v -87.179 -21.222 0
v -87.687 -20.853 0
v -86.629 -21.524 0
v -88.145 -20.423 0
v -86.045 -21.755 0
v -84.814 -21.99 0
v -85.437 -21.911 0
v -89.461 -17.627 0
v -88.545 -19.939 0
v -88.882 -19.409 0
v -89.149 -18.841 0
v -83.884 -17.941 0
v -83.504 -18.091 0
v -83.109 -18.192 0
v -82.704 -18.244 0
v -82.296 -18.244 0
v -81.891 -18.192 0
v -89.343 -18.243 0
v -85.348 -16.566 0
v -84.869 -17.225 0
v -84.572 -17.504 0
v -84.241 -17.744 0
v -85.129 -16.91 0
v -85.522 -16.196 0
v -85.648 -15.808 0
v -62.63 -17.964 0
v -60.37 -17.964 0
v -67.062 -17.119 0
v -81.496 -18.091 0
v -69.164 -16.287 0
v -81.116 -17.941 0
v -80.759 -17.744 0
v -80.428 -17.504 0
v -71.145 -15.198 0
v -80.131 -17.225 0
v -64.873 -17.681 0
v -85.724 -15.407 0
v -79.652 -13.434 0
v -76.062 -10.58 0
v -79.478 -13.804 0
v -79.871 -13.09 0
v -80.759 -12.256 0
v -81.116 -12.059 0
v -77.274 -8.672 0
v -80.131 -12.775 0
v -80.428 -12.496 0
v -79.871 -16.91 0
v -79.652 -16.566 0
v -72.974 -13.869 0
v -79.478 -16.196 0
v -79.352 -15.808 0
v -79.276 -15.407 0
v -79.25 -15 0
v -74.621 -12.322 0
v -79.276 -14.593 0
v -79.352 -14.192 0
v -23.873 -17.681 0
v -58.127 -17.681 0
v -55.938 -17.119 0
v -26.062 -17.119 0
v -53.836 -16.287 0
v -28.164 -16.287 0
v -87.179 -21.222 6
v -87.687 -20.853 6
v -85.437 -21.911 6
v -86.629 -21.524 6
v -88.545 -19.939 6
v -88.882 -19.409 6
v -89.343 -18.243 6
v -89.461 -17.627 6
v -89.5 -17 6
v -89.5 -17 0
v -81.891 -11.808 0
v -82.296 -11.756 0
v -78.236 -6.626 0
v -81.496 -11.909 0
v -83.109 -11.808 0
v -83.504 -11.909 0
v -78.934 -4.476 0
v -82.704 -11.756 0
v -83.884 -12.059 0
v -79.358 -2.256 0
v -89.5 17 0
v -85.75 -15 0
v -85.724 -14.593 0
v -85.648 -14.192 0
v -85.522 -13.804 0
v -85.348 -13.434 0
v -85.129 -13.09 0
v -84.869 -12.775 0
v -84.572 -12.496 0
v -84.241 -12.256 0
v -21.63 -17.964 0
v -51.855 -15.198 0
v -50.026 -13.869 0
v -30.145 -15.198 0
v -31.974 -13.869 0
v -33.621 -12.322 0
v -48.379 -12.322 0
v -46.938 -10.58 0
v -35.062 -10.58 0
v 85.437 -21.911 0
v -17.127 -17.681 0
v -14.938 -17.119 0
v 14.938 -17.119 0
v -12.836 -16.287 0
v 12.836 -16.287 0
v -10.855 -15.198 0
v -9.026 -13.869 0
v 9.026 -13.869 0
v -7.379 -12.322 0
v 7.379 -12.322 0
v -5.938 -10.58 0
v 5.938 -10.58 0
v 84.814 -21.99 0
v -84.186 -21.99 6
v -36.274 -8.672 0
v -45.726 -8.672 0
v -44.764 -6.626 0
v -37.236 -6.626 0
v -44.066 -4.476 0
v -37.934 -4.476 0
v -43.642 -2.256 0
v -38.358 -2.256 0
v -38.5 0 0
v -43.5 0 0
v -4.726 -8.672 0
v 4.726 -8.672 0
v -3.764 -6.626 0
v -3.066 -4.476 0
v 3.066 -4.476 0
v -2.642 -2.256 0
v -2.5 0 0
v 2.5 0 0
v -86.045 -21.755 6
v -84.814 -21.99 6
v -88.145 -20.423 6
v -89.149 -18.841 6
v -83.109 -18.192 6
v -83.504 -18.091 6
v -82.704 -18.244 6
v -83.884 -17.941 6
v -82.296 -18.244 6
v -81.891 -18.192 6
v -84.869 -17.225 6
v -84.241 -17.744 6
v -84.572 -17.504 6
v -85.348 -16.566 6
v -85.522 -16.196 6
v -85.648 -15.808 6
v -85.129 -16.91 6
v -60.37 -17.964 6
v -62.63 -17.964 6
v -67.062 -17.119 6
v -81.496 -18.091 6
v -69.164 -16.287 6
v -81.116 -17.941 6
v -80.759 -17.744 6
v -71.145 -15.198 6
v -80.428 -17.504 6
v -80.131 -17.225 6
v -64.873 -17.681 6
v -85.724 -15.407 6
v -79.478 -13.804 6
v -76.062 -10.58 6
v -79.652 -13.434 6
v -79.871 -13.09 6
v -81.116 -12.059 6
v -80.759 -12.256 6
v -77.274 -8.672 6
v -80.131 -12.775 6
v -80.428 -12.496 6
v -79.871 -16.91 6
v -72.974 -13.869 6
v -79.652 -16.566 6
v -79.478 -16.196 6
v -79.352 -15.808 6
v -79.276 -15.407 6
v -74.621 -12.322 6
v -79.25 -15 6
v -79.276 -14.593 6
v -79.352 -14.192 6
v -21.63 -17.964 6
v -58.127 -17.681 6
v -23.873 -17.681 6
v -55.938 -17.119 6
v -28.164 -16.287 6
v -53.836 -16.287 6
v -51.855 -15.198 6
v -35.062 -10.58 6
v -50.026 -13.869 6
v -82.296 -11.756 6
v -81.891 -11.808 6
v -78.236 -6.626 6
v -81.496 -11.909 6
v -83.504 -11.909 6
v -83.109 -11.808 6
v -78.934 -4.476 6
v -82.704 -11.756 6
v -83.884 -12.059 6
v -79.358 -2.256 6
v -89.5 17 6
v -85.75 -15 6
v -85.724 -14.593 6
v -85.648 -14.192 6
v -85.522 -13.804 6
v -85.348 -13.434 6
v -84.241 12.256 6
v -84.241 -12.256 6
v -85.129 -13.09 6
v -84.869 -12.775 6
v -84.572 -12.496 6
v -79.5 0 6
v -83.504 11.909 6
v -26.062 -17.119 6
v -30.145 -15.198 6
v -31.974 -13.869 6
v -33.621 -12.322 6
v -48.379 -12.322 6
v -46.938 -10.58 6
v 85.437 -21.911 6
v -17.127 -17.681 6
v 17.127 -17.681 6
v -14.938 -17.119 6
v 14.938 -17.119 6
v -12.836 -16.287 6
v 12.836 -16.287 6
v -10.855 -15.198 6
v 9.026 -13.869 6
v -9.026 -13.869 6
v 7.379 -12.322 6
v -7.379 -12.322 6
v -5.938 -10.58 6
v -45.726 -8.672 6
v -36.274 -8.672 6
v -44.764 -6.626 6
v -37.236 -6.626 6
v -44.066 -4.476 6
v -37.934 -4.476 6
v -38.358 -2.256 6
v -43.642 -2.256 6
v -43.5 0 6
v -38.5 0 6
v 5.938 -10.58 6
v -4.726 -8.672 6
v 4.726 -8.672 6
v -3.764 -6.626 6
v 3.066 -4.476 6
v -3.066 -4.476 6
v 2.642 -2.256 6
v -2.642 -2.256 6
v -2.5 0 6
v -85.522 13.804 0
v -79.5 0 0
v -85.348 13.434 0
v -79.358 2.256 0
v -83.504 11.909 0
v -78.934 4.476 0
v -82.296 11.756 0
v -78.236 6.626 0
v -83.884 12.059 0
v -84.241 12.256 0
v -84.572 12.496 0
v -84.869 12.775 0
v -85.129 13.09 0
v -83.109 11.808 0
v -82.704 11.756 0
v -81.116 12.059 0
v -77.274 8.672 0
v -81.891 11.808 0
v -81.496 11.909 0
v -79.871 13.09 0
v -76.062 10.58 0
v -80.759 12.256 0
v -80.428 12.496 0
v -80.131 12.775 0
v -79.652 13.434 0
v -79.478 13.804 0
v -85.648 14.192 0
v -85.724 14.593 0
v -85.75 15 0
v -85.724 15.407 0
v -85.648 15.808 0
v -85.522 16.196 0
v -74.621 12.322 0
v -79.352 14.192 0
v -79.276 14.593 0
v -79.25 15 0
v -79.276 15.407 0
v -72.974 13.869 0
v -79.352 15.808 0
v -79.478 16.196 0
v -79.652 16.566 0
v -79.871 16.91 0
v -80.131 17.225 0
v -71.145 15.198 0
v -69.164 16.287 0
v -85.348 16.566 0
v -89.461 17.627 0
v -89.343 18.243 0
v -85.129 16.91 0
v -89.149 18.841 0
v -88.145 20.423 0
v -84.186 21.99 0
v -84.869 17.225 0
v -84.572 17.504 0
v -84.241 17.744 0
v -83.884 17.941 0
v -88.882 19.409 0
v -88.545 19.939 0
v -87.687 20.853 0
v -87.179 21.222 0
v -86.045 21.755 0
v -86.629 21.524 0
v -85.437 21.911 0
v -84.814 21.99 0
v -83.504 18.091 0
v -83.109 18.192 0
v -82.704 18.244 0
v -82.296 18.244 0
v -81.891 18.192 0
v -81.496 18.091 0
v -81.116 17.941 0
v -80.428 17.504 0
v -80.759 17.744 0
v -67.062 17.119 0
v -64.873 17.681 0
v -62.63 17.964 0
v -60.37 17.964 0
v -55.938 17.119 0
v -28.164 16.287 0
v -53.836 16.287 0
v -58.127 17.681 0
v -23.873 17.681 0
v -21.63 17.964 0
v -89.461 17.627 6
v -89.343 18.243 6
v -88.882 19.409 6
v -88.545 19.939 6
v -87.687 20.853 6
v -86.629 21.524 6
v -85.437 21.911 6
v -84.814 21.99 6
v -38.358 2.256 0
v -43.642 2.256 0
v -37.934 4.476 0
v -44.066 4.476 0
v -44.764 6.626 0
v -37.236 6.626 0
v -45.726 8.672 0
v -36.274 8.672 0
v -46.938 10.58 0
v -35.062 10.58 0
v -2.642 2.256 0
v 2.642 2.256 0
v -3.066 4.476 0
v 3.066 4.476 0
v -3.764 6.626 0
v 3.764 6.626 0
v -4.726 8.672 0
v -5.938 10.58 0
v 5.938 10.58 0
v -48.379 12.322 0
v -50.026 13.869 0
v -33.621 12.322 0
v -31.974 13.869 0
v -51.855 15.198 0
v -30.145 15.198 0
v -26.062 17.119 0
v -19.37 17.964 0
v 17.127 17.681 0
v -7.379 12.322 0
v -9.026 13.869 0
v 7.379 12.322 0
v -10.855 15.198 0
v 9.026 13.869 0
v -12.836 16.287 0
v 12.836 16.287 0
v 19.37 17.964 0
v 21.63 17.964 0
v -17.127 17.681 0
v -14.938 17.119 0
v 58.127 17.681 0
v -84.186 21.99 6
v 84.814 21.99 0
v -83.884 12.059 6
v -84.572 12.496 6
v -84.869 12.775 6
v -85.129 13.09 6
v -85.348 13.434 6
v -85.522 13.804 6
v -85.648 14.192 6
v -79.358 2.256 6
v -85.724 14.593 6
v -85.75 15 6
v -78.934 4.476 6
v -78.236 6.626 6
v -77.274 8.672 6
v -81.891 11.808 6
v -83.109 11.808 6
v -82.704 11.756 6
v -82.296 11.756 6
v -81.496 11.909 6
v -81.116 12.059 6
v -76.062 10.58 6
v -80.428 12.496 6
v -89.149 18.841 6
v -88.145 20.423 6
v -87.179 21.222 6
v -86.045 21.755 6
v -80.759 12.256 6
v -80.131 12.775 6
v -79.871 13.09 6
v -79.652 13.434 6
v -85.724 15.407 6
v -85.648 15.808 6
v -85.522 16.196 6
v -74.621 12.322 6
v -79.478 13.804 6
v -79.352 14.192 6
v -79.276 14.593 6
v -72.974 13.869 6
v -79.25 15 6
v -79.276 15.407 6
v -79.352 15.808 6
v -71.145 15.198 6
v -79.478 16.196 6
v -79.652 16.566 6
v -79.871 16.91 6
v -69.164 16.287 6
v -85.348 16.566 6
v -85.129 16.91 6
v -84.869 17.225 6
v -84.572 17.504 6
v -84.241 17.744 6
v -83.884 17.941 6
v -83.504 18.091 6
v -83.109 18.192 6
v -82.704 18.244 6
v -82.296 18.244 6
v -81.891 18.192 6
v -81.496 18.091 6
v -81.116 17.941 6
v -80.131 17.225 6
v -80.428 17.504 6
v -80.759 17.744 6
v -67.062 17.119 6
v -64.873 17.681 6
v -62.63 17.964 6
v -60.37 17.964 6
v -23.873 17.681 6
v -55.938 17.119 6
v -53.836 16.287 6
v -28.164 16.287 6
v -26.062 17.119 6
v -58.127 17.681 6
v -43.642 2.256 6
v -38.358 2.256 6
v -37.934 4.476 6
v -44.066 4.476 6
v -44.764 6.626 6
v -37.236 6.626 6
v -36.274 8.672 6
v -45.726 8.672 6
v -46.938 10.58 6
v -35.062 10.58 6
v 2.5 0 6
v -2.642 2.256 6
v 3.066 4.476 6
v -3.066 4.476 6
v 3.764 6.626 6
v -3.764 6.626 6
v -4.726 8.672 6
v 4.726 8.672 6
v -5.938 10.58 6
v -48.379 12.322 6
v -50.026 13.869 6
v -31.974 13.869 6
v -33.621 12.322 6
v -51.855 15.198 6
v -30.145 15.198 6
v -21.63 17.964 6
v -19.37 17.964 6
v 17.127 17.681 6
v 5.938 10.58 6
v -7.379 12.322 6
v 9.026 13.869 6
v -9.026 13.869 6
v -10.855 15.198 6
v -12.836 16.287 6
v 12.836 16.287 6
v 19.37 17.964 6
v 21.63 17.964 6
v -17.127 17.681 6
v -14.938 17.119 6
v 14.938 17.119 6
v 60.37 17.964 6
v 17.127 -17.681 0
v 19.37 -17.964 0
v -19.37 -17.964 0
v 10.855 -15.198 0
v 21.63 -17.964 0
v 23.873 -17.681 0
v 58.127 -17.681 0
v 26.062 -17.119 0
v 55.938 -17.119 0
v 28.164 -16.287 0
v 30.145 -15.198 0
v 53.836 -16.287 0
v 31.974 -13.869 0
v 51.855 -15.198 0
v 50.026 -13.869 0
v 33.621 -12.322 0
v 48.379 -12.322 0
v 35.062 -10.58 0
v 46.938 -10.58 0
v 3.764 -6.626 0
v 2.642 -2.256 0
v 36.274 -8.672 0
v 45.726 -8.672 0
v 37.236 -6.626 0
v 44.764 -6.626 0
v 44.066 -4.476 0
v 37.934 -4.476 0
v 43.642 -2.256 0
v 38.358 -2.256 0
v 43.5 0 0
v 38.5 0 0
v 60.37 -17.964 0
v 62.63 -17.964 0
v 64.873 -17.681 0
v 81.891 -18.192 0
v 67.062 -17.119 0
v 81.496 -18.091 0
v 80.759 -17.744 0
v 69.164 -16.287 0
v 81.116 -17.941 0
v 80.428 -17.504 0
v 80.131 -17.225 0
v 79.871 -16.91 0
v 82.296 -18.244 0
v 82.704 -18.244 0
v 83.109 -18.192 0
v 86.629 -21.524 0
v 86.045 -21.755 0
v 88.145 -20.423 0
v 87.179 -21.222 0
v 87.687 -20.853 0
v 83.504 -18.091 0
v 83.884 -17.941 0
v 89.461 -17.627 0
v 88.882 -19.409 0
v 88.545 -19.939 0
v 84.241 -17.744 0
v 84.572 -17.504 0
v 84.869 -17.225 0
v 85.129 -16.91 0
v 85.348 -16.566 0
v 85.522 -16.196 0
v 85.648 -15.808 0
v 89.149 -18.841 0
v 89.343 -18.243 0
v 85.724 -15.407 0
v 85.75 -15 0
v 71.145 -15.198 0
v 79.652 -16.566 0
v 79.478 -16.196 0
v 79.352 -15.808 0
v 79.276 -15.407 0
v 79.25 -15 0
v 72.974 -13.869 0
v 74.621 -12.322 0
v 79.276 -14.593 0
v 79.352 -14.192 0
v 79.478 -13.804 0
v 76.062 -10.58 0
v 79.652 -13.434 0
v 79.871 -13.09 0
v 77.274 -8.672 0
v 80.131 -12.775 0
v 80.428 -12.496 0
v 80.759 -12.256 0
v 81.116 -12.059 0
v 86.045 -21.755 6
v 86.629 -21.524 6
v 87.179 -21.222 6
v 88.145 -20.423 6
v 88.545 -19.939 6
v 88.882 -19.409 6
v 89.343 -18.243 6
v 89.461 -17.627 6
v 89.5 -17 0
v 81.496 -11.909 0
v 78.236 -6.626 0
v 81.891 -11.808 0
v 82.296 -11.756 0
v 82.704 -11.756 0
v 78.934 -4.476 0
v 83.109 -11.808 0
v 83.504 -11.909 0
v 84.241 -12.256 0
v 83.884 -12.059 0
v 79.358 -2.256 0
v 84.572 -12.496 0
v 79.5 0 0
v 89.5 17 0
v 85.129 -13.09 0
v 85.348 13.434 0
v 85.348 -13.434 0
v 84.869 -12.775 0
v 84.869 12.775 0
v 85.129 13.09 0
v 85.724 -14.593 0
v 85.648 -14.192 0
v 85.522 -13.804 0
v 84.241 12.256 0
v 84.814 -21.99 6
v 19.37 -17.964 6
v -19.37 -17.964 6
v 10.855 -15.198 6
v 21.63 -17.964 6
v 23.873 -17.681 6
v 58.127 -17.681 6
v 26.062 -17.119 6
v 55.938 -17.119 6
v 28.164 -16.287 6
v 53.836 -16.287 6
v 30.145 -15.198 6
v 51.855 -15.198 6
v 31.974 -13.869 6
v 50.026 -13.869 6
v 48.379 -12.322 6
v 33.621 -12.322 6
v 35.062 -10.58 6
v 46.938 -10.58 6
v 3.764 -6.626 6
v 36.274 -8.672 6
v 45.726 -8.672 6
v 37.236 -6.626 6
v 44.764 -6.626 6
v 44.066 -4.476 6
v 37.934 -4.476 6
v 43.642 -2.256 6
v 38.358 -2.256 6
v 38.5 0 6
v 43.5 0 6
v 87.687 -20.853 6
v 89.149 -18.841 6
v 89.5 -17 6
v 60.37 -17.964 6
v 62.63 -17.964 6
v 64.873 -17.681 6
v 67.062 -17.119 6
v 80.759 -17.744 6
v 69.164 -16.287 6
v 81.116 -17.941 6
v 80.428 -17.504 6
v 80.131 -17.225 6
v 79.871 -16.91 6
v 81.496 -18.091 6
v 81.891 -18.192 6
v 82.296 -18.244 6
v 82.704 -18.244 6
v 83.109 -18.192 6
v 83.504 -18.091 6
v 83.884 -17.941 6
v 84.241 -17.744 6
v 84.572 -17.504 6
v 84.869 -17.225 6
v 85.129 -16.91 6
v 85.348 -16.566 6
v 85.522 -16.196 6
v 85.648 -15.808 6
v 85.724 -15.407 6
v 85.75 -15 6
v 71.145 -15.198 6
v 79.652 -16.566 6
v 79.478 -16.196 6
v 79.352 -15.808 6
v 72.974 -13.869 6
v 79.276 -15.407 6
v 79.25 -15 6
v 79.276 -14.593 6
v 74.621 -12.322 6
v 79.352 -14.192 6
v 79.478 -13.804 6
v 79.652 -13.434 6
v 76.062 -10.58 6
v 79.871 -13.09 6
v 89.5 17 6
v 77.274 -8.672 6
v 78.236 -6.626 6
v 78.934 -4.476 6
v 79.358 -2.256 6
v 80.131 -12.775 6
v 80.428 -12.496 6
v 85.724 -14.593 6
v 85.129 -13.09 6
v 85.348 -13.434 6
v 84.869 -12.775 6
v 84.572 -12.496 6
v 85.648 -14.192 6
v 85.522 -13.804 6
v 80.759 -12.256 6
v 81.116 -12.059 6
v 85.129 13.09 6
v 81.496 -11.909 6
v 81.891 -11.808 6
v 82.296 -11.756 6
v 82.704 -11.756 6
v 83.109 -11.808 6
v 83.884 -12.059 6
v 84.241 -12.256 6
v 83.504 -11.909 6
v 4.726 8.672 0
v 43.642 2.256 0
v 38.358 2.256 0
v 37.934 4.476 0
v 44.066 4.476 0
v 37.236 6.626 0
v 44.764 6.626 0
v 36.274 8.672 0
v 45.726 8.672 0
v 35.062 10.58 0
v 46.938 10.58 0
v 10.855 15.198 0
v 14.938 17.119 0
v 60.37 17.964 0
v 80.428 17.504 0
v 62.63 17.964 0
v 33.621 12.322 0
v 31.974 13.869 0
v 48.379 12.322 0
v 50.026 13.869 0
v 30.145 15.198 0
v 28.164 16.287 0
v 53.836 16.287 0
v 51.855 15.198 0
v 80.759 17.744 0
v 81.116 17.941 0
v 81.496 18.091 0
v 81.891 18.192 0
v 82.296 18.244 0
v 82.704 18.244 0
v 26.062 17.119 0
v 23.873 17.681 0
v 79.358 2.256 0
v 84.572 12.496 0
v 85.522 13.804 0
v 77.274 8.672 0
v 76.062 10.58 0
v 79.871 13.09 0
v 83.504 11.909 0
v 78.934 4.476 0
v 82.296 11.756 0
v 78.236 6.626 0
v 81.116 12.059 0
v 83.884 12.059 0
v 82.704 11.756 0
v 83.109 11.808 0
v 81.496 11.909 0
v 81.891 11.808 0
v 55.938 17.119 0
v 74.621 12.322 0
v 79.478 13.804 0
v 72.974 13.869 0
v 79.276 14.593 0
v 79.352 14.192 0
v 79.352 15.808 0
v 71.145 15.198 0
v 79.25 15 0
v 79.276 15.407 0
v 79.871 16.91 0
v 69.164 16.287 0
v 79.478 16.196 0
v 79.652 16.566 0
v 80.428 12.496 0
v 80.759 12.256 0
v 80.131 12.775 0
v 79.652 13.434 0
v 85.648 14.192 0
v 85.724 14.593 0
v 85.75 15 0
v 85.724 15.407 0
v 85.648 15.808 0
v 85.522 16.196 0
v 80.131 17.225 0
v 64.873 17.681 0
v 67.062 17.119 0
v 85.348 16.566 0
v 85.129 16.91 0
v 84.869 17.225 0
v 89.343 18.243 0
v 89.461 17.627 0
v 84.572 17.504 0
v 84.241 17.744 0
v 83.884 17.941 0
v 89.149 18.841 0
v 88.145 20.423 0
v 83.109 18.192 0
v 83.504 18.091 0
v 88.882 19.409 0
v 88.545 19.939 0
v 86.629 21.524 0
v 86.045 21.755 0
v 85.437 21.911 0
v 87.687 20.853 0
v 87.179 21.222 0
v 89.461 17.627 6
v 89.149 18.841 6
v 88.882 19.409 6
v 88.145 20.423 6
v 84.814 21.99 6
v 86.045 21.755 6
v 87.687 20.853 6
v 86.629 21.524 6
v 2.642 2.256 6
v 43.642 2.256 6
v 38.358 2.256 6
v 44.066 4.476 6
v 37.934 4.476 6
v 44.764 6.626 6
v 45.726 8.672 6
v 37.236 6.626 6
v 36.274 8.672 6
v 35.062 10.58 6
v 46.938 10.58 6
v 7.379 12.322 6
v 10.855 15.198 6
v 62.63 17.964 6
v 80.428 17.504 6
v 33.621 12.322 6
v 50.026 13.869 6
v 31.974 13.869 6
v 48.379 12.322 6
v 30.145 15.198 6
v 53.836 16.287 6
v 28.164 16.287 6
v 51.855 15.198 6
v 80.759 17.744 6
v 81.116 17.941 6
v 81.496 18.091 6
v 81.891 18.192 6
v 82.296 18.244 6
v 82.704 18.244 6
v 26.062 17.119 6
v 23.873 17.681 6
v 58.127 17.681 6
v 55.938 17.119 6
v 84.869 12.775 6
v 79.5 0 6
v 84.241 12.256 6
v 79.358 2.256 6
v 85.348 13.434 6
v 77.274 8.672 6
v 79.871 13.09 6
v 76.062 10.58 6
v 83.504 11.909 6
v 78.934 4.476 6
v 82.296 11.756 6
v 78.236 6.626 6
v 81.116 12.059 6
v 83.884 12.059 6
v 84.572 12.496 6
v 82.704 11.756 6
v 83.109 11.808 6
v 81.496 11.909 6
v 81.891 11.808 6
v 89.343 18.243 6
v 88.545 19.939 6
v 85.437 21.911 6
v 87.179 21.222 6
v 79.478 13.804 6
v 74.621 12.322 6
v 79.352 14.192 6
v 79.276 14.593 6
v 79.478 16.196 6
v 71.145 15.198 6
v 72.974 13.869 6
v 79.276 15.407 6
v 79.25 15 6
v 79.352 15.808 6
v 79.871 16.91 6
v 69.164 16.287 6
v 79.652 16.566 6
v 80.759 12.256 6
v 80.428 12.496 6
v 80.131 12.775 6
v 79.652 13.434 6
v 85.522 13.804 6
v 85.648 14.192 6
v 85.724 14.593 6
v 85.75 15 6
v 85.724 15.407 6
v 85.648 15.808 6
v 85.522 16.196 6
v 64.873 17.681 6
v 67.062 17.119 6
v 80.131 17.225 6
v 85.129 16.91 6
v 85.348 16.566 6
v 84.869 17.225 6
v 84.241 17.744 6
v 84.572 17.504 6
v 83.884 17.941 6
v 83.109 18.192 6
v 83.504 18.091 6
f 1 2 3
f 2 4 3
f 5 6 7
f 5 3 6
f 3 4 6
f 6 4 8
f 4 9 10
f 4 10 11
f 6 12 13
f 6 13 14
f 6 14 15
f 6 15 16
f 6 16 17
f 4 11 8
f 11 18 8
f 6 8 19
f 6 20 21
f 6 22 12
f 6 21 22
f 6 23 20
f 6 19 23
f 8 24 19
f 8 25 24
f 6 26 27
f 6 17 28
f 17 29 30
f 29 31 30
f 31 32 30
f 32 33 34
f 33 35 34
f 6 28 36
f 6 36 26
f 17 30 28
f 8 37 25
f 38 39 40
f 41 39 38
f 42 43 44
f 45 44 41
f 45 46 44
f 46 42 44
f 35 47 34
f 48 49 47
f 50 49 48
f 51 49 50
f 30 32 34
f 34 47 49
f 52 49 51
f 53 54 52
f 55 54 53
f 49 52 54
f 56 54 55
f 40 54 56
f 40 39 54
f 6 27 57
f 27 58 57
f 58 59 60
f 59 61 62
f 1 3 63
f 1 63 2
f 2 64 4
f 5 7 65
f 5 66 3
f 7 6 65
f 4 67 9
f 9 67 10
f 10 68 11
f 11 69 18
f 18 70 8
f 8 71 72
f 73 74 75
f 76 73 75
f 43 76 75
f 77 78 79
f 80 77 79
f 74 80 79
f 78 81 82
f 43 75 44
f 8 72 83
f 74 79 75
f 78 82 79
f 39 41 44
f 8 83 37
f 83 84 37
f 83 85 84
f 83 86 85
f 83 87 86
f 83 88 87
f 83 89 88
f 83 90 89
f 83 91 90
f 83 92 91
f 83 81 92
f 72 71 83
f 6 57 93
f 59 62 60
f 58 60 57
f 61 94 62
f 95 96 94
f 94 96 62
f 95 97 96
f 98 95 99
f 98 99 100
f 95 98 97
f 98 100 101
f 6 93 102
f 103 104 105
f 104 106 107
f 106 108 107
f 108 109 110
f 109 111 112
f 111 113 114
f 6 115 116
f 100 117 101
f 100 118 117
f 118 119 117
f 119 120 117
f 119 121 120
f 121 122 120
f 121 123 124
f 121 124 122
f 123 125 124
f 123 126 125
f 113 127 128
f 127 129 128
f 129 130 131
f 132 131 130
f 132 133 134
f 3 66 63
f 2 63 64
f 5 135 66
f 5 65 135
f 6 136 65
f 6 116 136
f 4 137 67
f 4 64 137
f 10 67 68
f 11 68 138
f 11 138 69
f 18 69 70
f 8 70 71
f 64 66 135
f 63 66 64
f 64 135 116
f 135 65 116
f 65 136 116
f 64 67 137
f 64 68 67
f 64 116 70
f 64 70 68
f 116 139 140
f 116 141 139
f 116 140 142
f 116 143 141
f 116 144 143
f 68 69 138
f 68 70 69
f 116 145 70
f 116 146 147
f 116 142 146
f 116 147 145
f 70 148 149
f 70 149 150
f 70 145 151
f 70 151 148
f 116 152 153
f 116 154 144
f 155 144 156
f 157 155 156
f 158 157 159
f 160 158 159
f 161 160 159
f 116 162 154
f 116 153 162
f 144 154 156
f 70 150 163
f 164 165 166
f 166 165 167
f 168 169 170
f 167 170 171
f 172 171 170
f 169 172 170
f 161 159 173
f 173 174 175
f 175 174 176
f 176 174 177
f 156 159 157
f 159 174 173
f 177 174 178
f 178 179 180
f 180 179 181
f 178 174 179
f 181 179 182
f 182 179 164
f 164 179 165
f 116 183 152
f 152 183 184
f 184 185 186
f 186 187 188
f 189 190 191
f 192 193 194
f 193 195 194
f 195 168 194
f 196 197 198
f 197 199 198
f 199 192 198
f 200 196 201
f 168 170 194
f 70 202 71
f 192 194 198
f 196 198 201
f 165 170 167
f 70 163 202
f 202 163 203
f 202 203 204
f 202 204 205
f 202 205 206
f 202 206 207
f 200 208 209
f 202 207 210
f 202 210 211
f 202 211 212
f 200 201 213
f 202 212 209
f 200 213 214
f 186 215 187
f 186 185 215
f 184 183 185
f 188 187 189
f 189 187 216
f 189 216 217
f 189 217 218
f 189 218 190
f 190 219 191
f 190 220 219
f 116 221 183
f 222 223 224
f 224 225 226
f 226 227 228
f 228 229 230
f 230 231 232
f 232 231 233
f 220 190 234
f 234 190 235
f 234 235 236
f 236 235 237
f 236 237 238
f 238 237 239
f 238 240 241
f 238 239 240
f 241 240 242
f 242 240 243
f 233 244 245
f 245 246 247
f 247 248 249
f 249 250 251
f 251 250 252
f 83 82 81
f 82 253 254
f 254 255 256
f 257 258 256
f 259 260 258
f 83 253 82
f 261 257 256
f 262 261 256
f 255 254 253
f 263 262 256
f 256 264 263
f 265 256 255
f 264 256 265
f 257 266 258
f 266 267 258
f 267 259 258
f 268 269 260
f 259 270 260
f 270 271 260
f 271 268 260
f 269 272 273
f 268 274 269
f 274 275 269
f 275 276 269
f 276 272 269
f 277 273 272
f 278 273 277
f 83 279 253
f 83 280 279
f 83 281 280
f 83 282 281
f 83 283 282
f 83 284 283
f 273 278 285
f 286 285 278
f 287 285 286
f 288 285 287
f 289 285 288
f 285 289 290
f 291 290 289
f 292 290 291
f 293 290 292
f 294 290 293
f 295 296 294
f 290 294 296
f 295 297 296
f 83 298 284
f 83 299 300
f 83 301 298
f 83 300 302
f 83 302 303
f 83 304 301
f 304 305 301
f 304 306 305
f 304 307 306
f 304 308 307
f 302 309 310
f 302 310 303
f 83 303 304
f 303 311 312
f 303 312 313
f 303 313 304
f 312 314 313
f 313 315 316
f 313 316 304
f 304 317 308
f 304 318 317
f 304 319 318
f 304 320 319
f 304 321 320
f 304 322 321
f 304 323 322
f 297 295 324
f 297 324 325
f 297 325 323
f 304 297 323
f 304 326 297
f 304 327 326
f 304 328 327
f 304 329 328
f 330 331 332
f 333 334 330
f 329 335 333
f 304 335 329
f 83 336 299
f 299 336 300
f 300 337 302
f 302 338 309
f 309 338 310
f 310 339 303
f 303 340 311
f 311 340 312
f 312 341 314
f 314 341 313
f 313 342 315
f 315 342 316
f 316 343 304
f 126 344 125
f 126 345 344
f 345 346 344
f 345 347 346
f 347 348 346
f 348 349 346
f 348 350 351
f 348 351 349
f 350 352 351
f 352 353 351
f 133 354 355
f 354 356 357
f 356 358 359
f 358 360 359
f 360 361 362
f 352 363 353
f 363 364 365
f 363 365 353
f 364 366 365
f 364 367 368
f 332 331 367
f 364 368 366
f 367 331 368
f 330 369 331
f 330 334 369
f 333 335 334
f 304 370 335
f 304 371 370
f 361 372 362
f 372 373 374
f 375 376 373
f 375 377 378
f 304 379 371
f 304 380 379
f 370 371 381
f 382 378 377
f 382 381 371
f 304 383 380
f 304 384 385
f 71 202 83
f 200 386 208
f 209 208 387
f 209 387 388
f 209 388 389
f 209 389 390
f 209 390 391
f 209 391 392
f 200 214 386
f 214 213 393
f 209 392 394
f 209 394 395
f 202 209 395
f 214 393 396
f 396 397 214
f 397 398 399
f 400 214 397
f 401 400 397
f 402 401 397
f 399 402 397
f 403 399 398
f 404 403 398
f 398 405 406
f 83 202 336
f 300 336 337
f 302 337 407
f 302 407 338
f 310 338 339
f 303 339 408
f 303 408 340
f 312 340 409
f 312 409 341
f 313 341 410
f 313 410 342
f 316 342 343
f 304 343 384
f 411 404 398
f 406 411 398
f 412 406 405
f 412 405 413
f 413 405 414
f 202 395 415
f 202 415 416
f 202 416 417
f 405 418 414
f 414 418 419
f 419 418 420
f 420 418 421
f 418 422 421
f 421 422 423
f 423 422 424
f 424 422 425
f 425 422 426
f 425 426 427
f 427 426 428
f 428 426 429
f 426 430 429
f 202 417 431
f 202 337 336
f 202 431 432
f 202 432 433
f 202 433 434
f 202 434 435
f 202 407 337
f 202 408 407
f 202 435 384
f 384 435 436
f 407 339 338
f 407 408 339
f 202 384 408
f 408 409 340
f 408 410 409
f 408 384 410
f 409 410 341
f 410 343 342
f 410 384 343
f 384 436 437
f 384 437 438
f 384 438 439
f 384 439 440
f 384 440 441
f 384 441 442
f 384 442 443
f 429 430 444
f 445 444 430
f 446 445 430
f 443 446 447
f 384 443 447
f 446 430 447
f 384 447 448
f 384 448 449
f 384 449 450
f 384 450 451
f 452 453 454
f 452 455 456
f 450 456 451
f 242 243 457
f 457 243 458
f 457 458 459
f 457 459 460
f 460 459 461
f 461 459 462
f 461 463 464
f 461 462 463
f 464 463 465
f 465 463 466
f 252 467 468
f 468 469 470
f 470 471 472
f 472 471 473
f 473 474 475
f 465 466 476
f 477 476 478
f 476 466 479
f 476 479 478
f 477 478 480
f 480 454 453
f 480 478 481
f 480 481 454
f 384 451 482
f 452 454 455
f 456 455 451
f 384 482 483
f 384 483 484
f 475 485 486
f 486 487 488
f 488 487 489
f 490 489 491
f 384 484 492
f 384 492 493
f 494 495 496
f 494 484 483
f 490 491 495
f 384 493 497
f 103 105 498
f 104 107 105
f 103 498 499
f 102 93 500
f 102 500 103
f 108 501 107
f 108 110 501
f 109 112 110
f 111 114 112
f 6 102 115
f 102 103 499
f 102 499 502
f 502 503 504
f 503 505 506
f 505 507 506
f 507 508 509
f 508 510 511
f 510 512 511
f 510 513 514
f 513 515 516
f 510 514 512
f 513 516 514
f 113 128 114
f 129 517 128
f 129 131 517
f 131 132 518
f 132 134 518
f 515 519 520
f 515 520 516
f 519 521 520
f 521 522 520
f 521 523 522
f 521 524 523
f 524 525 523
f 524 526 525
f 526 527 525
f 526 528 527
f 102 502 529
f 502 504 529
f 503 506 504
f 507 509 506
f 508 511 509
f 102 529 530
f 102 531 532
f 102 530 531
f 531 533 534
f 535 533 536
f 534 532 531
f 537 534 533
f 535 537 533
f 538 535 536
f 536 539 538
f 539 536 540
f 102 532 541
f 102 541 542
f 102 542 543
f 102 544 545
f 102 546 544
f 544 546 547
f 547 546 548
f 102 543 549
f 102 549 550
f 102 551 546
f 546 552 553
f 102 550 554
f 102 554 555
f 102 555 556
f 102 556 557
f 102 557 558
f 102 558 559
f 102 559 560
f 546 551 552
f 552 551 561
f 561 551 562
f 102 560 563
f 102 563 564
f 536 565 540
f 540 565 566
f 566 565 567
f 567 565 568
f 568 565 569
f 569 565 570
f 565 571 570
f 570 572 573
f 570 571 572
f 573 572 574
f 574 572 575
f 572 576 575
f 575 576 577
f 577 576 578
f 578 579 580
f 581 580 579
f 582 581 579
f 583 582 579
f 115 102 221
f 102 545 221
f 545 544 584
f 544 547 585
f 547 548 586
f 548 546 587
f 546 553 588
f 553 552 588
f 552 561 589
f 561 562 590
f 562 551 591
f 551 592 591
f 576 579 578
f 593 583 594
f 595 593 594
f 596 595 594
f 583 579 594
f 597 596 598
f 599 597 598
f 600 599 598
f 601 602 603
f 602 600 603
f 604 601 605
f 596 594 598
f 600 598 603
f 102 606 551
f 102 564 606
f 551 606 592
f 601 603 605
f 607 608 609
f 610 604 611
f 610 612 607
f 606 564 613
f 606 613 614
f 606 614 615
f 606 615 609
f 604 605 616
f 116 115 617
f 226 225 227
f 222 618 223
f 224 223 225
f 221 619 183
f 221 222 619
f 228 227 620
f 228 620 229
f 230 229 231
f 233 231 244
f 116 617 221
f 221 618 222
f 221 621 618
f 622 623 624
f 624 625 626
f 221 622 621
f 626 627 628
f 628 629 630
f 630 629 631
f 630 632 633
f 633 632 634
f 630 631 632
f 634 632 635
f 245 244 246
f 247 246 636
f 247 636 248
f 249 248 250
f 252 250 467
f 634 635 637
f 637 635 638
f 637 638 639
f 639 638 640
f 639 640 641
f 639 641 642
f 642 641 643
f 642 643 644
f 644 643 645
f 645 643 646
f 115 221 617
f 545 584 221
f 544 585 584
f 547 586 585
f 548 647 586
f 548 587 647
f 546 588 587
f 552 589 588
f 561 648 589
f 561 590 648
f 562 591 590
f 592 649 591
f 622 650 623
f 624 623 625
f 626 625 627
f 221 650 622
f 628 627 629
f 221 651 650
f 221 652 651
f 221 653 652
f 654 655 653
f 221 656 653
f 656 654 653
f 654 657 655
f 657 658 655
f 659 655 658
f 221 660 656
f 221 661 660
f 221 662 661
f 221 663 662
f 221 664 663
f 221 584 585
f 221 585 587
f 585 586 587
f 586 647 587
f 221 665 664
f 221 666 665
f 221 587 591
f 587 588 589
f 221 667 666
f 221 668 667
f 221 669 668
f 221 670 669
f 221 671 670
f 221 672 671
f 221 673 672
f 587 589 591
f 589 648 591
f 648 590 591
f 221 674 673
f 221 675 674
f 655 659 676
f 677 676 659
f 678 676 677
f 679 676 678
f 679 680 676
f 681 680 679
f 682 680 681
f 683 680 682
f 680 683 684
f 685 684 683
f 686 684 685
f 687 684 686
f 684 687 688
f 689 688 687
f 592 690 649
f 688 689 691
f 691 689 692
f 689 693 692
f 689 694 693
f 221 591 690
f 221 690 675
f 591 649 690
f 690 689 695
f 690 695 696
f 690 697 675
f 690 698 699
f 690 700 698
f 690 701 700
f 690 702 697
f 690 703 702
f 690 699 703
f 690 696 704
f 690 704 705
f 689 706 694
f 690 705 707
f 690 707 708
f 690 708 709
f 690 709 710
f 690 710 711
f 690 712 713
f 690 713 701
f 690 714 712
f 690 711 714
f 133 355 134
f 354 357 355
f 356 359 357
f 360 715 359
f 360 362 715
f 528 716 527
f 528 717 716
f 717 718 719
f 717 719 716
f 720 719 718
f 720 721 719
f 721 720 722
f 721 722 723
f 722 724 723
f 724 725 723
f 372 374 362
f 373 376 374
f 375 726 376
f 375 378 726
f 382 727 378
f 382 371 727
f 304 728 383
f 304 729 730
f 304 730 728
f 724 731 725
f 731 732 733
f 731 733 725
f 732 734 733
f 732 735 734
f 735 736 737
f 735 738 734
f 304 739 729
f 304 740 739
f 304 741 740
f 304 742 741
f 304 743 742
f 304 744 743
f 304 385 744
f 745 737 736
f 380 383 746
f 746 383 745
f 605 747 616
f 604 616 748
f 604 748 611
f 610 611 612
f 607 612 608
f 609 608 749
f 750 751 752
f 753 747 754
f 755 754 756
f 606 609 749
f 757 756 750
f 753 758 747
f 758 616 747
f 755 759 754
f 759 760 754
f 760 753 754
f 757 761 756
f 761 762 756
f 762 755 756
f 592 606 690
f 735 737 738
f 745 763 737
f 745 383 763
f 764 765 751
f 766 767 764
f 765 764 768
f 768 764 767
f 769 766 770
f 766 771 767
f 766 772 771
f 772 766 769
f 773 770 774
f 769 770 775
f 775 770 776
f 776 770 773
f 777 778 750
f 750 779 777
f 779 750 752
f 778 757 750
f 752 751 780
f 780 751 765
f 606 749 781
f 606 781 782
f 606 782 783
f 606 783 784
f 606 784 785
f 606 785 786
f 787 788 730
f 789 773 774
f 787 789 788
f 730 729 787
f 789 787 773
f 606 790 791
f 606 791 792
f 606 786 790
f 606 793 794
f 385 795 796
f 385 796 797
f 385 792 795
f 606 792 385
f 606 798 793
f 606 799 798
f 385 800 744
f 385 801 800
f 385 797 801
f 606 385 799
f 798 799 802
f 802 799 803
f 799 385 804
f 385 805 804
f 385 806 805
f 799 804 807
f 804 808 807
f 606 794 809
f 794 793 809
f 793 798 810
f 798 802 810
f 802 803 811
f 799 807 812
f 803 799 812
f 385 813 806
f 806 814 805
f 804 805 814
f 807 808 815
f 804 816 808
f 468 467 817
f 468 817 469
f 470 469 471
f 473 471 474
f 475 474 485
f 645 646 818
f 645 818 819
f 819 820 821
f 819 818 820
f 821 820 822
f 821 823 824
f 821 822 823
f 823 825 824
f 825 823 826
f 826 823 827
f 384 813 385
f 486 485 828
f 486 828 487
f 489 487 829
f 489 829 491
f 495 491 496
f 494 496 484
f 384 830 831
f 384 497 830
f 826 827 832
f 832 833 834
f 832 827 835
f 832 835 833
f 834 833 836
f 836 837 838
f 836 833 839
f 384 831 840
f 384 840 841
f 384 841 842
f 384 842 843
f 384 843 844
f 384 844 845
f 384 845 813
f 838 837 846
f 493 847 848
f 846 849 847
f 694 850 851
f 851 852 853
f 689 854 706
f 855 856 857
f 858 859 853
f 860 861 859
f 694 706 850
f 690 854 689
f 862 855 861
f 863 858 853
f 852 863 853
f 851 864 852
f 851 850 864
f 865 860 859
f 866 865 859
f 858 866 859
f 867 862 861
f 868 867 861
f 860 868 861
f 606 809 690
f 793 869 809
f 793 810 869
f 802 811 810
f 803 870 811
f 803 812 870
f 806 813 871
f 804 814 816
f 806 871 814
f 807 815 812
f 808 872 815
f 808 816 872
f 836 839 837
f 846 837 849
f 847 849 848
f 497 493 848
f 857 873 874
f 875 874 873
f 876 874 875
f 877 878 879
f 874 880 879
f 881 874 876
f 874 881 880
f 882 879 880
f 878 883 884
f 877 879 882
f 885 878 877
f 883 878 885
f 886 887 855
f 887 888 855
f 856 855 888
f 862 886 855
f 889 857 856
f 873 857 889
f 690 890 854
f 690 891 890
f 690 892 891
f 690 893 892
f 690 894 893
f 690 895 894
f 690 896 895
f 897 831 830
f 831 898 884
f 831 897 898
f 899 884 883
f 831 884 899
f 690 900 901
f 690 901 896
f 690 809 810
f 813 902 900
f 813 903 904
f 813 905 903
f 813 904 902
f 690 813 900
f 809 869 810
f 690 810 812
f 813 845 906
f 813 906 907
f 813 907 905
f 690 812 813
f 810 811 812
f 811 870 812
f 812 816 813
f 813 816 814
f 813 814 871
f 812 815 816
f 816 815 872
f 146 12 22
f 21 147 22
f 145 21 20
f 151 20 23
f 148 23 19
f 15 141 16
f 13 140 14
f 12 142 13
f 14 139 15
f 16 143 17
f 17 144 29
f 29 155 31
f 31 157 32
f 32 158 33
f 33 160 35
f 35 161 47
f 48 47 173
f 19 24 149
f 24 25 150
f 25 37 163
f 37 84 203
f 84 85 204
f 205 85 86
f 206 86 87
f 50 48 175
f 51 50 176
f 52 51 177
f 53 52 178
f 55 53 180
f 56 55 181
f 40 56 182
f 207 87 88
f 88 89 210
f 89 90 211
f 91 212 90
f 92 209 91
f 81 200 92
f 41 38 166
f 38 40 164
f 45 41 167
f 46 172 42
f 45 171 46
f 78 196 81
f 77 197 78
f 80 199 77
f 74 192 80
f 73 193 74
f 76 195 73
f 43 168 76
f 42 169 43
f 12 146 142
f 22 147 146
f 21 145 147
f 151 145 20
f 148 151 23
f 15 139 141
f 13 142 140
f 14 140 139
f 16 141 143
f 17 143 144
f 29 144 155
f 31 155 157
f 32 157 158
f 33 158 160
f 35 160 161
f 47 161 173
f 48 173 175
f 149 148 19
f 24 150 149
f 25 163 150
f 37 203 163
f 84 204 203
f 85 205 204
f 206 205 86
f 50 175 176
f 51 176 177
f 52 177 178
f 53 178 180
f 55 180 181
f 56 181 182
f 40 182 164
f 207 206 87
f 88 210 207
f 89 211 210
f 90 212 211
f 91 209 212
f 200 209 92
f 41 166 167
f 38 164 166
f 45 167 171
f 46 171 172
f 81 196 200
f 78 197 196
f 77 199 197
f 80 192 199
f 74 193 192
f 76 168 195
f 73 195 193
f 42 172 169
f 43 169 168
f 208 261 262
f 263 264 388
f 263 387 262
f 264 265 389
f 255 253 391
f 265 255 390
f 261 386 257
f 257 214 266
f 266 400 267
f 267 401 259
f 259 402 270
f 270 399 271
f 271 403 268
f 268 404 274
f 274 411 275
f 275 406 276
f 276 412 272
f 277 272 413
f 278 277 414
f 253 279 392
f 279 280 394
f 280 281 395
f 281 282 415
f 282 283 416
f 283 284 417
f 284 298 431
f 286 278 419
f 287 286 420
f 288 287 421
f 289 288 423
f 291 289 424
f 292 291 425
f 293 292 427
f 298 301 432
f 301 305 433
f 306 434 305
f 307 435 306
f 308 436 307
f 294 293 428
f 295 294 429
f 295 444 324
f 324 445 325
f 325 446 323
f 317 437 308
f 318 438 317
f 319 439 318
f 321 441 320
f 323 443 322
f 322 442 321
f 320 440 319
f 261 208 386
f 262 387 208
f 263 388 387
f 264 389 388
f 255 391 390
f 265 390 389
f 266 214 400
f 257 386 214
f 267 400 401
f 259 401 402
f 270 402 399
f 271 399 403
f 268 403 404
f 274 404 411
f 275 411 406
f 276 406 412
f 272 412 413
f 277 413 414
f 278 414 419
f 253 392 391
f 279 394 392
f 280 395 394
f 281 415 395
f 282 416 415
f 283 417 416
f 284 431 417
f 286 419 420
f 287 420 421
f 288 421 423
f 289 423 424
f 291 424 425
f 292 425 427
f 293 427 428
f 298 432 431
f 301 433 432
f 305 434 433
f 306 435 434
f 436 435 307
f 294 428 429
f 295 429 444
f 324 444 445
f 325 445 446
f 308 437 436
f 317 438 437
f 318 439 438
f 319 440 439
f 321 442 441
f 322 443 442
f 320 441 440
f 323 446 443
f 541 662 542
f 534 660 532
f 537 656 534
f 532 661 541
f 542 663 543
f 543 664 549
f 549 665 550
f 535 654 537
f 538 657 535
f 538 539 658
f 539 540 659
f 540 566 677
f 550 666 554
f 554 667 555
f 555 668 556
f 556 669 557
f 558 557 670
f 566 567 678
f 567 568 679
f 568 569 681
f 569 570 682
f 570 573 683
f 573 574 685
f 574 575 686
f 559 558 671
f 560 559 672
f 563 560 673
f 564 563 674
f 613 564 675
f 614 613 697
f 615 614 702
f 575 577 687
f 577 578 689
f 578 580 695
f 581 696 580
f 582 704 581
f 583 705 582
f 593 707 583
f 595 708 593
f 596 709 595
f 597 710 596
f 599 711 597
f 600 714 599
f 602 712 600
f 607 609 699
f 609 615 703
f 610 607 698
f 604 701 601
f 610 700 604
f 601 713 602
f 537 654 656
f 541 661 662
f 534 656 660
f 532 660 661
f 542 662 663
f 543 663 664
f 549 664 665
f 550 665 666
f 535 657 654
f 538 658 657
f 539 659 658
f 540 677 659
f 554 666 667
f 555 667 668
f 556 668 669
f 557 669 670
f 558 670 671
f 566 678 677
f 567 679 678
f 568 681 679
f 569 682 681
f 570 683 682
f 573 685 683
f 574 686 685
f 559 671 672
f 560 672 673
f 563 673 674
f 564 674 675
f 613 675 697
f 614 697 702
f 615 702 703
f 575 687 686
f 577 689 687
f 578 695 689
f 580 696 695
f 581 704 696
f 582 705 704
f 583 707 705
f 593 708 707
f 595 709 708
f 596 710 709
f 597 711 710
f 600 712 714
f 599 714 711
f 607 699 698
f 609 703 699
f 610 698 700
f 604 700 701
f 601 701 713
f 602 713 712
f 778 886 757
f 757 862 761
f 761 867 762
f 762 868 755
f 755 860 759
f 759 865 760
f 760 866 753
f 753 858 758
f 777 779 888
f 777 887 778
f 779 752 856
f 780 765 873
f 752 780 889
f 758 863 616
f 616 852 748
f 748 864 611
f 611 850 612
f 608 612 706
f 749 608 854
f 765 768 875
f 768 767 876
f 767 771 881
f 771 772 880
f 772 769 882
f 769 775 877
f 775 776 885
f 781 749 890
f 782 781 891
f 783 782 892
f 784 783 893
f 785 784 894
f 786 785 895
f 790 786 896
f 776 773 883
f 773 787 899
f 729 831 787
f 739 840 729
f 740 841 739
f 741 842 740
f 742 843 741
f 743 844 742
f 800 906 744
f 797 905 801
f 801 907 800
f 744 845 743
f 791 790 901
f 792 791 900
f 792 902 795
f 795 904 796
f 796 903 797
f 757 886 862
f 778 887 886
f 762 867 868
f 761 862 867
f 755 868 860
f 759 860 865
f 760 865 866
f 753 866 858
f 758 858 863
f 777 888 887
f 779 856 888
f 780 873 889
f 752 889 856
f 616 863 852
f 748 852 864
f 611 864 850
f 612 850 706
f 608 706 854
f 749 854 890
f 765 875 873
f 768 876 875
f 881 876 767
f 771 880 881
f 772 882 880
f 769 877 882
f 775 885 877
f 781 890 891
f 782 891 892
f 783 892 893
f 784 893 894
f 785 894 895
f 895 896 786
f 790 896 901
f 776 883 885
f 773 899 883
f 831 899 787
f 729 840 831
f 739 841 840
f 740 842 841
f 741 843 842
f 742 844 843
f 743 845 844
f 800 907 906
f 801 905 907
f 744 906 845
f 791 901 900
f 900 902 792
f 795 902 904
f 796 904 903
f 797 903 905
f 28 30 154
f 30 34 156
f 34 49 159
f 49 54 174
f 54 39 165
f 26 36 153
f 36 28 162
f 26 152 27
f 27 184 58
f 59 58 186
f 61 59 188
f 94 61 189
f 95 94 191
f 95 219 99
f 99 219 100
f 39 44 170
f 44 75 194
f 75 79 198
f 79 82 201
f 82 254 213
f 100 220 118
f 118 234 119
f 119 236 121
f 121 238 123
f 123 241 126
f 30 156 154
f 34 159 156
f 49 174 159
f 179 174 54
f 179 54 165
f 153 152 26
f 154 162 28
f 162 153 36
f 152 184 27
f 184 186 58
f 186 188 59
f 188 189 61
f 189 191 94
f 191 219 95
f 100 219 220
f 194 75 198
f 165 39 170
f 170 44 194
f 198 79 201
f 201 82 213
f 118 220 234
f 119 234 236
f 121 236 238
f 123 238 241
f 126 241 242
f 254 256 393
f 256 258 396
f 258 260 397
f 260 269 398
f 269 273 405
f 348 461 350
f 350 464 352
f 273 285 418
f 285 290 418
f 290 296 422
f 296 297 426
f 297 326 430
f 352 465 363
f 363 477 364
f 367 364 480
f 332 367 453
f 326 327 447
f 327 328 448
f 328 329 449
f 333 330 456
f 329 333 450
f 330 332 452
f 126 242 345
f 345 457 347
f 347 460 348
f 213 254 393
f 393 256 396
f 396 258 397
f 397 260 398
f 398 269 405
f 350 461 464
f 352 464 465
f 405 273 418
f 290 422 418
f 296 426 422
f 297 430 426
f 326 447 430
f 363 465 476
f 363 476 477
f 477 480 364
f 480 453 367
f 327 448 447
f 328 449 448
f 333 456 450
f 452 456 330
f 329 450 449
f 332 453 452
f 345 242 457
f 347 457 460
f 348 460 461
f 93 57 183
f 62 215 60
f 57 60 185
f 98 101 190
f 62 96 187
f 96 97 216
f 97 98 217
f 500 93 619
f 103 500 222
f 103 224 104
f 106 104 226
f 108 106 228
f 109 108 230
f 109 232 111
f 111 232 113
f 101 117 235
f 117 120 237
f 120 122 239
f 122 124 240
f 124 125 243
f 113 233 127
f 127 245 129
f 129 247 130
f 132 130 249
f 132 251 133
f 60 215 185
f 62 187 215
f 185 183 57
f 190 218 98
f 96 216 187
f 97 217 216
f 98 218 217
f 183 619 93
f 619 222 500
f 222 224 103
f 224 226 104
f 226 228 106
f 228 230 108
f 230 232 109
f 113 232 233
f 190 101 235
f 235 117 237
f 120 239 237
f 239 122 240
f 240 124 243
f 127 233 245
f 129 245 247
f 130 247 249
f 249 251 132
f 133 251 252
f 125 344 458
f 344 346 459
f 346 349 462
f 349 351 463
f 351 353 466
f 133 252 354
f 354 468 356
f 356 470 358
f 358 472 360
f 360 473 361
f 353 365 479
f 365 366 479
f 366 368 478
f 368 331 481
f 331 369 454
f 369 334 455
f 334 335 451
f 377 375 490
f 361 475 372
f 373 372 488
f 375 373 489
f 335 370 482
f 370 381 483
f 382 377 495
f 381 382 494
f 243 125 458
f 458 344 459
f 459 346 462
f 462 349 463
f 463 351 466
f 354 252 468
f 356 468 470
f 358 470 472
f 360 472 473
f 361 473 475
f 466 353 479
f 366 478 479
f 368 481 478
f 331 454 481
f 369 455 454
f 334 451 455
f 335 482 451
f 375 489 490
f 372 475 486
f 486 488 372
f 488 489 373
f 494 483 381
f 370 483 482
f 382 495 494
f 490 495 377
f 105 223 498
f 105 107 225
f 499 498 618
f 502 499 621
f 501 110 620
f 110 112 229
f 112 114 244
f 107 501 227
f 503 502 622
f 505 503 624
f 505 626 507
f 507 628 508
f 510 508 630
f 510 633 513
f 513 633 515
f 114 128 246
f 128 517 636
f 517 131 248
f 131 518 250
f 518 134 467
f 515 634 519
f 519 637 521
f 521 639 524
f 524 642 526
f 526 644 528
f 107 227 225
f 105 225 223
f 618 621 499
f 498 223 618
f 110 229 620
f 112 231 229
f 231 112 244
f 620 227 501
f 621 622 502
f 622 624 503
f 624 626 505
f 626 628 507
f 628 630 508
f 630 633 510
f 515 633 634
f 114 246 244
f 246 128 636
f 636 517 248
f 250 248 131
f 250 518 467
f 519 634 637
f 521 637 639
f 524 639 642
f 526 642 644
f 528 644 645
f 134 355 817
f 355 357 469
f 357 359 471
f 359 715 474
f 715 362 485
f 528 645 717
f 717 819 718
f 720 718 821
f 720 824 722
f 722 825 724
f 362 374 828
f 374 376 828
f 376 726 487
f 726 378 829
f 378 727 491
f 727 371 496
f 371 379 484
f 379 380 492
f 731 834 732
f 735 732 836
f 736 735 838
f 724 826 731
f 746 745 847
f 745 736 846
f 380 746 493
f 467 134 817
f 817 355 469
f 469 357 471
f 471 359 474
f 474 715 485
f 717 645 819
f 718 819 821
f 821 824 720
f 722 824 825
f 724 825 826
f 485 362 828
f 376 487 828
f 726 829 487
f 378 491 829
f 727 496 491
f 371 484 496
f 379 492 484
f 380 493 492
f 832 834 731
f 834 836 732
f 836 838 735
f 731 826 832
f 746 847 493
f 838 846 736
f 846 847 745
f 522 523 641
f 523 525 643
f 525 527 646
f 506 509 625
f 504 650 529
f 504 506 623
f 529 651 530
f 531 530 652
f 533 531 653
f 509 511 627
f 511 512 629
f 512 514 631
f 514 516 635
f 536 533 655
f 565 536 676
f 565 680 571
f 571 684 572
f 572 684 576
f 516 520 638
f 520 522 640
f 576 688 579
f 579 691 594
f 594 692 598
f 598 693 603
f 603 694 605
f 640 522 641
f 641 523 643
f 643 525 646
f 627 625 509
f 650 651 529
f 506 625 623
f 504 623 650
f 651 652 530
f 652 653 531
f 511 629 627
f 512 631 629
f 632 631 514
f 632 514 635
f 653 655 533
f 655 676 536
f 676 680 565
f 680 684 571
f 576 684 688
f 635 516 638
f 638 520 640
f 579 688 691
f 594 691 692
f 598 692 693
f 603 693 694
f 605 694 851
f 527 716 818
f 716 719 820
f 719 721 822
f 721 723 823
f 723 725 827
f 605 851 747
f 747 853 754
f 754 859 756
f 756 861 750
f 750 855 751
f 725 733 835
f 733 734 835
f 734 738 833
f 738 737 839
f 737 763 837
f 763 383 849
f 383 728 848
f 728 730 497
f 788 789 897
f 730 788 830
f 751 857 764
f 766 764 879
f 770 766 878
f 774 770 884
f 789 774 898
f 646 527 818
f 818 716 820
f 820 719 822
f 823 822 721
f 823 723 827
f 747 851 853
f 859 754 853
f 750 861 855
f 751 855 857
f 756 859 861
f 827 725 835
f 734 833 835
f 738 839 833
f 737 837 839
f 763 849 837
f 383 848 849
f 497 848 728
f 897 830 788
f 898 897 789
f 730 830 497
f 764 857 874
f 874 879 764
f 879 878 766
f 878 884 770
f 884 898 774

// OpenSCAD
$fn = 50;

difference() {
	union() {
		hull() {
			translate(v = [-84.5, 17.0, 0]) {
				cylinder(h = 6, r = 5);
			}
			translate(v = [84.5, 17.0, 0]) {
				cylinder(h = 6, r = 5);
			}
			translate(v = [-84.5, -17.0, 0]) {
				cylinder(h = 6, r = 5);
			}
			translate(v = [84.5, -17.0, 0]) {
				cylinder(h = 6, r = 5);
			}
		}
	}
	union() {
		translate(v = [-82.5, -15.0, -100.0]) {
			cylinder(h = 200, r = 3.25);
		}
		translate(v = [-82.5, 15.0, -100.0]) {
			cylinder(h = 200, r = 3.25);
		}
		translate(v = [82.5, -15.0, -100.0]) {
			cylinder(h = 200, r = 3.25);
		}
		translate(v = [82.5, 15.0, -100.0]) {
			cylinder(h = 200, r = 3.25);
		}
		translate(v = [-82.5, -15.0, -100.0]) {
			cylinder(h = 200, r = 1.8);
		}
		translate(v = [-82.5, 15.0, -100.0]) {
			cylinder(h = 200, r = 1.8);
		}
		translate(v = [82.5, -15.0, -100.0]) {
			cylinder(h = 200, r = 1.8);
		}
		translate(v = [82.5, 15.0, -100.0]) {
			cylinder(h = 200, r = 1.8);
		}
		translate(v = [-61.5, 0, 0.0]) {
			cylinder(h = 6, r = 18.0);
		}
		translate(v = [-20.5, 0, 0.0]) {
			cylinder(h = 6, r = 18.0);
		}
		translate(v = [20.5, 0, 0.0]) {
			cylinder(h = 6, r = 18.0);
		}
		translate(v = [61.5, 0, 0.0]) {
			cylinder(h = 6, r = 18.0);
		}
	}
}
